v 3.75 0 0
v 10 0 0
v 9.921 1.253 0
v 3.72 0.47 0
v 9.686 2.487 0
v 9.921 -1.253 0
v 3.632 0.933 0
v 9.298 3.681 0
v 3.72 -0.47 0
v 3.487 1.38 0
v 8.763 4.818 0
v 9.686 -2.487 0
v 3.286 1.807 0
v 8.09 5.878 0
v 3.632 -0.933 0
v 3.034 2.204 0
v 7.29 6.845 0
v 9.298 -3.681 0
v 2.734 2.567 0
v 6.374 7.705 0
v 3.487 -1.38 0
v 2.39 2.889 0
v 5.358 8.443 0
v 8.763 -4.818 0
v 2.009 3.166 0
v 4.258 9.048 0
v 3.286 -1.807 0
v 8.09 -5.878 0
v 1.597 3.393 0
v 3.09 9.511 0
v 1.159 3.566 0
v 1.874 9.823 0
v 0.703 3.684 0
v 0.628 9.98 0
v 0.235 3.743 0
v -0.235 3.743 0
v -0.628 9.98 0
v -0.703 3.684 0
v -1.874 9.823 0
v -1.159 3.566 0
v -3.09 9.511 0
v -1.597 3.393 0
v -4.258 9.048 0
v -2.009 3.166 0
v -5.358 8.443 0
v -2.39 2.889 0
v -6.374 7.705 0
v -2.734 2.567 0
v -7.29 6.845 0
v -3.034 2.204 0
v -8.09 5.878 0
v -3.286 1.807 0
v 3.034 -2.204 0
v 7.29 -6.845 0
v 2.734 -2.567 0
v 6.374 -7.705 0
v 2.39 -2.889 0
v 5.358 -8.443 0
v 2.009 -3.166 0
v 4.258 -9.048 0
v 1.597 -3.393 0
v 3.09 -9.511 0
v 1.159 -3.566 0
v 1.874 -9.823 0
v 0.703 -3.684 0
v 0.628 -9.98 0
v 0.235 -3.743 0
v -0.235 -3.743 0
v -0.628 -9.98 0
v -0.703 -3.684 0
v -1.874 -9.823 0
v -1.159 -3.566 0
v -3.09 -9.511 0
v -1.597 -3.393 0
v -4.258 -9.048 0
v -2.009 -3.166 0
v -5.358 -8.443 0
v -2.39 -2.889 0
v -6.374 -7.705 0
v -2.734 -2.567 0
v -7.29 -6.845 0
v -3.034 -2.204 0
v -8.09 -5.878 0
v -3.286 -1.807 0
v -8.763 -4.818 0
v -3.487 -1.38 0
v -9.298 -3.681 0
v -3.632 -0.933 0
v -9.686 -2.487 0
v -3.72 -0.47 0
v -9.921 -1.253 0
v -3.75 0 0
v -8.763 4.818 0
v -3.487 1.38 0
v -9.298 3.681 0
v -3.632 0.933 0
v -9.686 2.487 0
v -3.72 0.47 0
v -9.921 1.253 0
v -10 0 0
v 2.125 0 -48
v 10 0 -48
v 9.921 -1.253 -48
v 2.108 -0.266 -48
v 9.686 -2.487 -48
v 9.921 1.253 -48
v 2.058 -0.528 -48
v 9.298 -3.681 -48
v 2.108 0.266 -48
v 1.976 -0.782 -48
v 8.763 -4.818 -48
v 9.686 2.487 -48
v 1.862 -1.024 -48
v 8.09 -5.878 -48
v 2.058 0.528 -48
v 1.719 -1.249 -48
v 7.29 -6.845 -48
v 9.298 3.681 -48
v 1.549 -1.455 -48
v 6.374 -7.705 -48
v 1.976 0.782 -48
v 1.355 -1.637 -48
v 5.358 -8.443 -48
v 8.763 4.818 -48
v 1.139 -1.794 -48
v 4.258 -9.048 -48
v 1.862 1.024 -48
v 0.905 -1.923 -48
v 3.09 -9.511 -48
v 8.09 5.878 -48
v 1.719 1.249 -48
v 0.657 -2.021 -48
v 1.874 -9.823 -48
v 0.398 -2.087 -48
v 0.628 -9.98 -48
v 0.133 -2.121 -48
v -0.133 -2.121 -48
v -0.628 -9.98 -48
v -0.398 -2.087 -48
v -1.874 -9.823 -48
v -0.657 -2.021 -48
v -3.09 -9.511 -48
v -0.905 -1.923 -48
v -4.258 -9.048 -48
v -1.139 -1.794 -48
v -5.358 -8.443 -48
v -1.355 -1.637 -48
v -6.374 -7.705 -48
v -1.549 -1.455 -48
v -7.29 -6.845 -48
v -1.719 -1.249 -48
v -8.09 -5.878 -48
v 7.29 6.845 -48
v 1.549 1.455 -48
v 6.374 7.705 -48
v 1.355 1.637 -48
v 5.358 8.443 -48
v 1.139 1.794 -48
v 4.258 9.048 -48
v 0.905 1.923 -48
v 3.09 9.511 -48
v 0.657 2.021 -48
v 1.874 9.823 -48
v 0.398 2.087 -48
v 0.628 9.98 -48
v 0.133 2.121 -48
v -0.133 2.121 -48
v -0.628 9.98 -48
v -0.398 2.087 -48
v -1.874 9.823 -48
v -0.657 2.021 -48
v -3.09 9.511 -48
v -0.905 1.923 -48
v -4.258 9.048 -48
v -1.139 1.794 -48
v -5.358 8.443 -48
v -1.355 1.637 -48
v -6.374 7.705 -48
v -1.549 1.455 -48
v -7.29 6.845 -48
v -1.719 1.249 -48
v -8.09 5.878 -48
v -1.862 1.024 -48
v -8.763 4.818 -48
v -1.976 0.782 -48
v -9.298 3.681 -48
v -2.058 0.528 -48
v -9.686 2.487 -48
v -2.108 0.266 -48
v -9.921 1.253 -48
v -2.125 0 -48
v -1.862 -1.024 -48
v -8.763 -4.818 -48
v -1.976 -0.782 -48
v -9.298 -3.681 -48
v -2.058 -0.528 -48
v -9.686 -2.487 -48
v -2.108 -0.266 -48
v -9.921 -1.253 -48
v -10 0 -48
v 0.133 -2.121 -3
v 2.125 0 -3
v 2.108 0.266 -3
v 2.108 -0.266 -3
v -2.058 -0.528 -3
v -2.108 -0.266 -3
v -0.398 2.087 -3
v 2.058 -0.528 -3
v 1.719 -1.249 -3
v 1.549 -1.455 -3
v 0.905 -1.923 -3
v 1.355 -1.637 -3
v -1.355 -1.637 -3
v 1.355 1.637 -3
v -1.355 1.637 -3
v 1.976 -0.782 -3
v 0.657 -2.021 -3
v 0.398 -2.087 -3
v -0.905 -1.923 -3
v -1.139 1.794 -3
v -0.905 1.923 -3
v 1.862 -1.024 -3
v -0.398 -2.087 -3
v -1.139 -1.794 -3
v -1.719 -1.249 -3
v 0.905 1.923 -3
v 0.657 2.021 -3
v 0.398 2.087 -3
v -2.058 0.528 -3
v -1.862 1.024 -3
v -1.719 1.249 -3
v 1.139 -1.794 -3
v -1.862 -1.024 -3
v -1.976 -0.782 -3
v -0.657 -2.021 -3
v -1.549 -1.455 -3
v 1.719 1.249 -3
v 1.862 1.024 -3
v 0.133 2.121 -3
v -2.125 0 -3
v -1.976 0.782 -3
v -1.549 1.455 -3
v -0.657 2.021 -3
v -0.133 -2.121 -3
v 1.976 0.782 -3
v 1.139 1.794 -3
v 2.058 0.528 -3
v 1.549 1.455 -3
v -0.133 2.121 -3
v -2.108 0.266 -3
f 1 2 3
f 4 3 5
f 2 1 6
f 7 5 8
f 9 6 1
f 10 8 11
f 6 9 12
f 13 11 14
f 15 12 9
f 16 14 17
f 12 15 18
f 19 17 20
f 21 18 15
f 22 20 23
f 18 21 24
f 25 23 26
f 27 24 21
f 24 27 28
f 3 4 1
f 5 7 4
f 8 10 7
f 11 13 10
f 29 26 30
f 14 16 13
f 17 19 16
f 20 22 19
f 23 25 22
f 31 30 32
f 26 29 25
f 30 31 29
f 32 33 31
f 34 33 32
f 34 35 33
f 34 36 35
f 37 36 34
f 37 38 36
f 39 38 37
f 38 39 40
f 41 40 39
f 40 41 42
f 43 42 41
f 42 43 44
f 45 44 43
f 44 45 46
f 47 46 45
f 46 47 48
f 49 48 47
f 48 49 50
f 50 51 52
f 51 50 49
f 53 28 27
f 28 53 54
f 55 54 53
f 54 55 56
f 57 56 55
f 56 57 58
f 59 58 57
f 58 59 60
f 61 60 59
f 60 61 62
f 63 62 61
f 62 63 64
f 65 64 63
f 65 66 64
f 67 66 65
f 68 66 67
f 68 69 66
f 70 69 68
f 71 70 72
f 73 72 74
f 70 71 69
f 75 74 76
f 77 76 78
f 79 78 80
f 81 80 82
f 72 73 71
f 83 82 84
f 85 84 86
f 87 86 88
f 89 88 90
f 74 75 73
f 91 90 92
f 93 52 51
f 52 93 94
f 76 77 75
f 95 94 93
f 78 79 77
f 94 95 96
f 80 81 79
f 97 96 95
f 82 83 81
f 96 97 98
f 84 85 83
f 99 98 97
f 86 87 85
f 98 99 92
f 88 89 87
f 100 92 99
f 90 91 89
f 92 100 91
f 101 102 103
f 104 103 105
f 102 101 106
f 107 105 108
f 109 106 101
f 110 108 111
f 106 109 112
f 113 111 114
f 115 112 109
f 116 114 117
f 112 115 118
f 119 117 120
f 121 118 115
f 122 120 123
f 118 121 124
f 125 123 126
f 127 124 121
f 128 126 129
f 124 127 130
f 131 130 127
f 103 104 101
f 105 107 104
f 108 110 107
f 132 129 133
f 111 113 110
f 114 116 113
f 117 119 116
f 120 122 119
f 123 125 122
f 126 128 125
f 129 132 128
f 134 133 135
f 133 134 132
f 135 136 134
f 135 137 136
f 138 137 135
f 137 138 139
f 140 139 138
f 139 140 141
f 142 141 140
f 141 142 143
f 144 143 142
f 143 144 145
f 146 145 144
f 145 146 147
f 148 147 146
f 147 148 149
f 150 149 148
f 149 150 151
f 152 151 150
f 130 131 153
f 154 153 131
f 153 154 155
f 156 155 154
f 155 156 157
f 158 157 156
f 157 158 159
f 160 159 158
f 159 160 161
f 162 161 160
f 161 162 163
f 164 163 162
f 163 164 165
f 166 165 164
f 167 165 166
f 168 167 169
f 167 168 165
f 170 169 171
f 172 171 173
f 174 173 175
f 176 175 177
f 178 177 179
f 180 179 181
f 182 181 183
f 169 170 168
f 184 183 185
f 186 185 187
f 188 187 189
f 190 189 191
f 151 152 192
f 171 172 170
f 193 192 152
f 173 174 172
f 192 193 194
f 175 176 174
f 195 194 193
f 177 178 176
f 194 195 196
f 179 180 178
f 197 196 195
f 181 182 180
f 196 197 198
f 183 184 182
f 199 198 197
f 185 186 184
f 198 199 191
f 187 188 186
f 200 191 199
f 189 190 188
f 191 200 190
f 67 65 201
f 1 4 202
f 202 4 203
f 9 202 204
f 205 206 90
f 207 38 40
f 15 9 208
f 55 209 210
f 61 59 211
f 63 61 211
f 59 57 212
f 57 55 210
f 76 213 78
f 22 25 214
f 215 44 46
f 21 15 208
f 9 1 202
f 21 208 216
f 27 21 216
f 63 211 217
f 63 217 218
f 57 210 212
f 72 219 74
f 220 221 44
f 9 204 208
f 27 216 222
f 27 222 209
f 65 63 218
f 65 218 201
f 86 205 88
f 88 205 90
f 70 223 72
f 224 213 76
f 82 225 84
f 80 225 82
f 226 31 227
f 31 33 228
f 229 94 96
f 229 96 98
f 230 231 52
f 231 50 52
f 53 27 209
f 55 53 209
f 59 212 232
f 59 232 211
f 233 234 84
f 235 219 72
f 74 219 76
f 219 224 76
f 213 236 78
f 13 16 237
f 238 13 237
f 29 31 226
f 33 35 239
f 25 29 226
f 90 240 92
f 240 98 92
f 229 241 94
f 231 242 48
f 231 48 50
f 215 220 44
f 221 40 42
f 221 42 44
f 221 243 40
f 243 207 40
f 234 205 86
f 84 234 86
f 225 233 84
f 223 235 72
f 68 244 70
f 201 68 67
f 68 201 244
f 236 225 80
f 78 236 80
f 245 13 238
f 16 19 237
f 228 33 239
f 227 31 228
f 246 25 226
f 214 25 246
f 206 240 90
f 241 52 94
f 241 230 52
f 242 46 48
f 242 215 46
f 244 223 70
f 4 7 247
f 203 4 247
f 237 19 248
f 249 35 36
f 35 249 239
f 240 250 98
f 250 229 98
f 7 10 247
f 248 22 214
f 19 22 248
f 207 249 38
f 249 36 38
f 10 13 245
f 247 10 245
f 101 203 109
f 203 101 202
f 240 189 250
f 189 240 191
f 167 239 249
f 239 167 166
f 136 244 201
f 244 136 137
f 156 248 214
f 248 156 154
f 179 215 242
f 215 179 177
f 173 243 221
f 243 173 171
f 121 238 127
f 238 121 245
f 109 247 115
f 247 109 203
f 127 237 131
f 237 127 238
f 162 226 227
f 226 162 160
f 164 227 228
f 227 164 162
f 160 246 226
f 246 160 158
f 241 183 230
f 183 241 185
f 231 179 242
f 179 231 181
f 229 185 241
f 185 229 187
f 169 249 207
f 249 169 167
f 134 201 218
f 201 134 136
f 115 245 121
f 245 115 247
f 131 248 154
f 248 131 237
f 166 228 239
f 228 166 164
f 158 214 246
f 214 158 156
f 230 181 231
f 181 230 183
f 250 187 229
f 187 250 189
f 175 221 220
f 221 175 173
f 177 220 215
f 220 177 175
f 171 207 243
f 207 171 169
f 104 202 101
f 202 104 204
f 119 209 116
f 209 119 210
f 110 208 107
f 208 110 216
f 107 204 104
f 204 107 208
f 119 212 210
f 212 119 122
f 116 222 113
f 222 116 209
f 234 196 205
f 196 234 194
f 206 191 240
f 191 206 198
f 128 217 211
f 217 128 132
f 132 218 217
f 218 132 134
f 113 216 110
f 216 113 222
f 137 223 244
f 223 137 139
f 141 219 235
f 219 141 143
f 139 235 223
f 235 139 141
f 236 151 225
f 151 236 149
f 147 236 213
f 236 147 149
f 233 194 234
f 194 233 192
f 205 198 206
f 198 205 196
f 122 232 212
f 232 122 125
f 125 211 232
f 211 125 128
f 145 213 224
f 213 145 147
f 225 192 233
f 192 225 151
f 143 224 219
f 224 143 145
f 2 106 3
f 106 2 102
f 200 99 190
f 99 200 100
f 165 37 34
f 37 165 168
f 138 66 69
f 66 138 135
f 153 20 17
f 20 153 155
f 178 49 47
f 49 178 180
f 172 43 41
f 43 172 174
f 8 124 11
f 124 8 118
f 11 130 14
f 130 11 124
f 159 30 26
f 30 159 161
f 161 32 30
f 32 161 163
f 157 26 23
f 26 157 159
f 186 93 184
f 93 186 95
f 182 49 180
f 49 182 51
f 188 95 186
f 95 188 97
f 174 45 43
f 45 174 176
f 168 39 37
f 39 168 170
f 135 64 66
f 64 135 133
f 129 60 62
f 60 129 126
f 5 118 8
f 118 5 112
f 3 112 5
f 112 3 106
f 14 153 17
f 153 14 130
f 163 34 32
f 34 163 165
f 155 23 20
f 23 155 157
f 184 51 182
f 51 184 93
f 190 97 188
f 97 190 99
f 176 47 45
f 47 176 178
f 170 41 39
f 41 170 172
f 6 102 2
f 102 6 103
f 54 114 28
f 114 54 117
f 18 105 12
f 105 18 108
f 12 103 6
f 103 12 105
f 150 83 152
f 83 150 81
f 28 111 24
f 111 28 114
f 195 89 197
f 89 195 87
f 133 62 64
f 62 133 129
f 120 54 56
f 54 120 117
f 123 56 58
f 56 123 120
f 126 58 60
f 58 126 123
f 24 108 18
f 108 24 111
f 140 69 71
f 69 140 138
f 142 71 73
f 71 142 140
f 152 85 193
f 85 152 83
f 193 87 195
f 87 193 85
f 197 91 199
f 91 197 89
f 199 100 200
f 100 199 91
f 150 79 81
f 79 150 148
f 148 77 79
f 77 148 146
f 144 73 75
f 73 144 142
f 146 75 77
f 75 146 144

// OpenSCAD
$fn = 50;


difference() {
	union() {
		translate(v = [0, 0, -48.0000000000]) {
			cylinder(h = 48, r = 10.0000000000);
		}
		cylinder(h = 0, r = 13.0000000000);
	}
	union() {
		translate(v = [0, 0, 0]) {
			rotate(a = [0, 0, 0]) {
				difference() {
					union() {
						#translate(v = [0, 0, -48.0000000000]) {
							cylinder(h = 48, r = 2.0000000000);
						}
						#translate(v = [0, 0, -3]) {
							cylinder(h = 3, r = 10.0000000000, r1 = 2.1250000000, r2 = 3.7500000000);
						}
						#translate(v = [0, 0, -48.0000000000]) {
							cylinder(h = 48, r = 2.1250000000);
						}
						#translate(v = [0, 0, -48.0000000000]) {
							cylinder(h = 48, r = 2.0000000000);
						}
					}
					union();
				}
			}
		}
	}
}
